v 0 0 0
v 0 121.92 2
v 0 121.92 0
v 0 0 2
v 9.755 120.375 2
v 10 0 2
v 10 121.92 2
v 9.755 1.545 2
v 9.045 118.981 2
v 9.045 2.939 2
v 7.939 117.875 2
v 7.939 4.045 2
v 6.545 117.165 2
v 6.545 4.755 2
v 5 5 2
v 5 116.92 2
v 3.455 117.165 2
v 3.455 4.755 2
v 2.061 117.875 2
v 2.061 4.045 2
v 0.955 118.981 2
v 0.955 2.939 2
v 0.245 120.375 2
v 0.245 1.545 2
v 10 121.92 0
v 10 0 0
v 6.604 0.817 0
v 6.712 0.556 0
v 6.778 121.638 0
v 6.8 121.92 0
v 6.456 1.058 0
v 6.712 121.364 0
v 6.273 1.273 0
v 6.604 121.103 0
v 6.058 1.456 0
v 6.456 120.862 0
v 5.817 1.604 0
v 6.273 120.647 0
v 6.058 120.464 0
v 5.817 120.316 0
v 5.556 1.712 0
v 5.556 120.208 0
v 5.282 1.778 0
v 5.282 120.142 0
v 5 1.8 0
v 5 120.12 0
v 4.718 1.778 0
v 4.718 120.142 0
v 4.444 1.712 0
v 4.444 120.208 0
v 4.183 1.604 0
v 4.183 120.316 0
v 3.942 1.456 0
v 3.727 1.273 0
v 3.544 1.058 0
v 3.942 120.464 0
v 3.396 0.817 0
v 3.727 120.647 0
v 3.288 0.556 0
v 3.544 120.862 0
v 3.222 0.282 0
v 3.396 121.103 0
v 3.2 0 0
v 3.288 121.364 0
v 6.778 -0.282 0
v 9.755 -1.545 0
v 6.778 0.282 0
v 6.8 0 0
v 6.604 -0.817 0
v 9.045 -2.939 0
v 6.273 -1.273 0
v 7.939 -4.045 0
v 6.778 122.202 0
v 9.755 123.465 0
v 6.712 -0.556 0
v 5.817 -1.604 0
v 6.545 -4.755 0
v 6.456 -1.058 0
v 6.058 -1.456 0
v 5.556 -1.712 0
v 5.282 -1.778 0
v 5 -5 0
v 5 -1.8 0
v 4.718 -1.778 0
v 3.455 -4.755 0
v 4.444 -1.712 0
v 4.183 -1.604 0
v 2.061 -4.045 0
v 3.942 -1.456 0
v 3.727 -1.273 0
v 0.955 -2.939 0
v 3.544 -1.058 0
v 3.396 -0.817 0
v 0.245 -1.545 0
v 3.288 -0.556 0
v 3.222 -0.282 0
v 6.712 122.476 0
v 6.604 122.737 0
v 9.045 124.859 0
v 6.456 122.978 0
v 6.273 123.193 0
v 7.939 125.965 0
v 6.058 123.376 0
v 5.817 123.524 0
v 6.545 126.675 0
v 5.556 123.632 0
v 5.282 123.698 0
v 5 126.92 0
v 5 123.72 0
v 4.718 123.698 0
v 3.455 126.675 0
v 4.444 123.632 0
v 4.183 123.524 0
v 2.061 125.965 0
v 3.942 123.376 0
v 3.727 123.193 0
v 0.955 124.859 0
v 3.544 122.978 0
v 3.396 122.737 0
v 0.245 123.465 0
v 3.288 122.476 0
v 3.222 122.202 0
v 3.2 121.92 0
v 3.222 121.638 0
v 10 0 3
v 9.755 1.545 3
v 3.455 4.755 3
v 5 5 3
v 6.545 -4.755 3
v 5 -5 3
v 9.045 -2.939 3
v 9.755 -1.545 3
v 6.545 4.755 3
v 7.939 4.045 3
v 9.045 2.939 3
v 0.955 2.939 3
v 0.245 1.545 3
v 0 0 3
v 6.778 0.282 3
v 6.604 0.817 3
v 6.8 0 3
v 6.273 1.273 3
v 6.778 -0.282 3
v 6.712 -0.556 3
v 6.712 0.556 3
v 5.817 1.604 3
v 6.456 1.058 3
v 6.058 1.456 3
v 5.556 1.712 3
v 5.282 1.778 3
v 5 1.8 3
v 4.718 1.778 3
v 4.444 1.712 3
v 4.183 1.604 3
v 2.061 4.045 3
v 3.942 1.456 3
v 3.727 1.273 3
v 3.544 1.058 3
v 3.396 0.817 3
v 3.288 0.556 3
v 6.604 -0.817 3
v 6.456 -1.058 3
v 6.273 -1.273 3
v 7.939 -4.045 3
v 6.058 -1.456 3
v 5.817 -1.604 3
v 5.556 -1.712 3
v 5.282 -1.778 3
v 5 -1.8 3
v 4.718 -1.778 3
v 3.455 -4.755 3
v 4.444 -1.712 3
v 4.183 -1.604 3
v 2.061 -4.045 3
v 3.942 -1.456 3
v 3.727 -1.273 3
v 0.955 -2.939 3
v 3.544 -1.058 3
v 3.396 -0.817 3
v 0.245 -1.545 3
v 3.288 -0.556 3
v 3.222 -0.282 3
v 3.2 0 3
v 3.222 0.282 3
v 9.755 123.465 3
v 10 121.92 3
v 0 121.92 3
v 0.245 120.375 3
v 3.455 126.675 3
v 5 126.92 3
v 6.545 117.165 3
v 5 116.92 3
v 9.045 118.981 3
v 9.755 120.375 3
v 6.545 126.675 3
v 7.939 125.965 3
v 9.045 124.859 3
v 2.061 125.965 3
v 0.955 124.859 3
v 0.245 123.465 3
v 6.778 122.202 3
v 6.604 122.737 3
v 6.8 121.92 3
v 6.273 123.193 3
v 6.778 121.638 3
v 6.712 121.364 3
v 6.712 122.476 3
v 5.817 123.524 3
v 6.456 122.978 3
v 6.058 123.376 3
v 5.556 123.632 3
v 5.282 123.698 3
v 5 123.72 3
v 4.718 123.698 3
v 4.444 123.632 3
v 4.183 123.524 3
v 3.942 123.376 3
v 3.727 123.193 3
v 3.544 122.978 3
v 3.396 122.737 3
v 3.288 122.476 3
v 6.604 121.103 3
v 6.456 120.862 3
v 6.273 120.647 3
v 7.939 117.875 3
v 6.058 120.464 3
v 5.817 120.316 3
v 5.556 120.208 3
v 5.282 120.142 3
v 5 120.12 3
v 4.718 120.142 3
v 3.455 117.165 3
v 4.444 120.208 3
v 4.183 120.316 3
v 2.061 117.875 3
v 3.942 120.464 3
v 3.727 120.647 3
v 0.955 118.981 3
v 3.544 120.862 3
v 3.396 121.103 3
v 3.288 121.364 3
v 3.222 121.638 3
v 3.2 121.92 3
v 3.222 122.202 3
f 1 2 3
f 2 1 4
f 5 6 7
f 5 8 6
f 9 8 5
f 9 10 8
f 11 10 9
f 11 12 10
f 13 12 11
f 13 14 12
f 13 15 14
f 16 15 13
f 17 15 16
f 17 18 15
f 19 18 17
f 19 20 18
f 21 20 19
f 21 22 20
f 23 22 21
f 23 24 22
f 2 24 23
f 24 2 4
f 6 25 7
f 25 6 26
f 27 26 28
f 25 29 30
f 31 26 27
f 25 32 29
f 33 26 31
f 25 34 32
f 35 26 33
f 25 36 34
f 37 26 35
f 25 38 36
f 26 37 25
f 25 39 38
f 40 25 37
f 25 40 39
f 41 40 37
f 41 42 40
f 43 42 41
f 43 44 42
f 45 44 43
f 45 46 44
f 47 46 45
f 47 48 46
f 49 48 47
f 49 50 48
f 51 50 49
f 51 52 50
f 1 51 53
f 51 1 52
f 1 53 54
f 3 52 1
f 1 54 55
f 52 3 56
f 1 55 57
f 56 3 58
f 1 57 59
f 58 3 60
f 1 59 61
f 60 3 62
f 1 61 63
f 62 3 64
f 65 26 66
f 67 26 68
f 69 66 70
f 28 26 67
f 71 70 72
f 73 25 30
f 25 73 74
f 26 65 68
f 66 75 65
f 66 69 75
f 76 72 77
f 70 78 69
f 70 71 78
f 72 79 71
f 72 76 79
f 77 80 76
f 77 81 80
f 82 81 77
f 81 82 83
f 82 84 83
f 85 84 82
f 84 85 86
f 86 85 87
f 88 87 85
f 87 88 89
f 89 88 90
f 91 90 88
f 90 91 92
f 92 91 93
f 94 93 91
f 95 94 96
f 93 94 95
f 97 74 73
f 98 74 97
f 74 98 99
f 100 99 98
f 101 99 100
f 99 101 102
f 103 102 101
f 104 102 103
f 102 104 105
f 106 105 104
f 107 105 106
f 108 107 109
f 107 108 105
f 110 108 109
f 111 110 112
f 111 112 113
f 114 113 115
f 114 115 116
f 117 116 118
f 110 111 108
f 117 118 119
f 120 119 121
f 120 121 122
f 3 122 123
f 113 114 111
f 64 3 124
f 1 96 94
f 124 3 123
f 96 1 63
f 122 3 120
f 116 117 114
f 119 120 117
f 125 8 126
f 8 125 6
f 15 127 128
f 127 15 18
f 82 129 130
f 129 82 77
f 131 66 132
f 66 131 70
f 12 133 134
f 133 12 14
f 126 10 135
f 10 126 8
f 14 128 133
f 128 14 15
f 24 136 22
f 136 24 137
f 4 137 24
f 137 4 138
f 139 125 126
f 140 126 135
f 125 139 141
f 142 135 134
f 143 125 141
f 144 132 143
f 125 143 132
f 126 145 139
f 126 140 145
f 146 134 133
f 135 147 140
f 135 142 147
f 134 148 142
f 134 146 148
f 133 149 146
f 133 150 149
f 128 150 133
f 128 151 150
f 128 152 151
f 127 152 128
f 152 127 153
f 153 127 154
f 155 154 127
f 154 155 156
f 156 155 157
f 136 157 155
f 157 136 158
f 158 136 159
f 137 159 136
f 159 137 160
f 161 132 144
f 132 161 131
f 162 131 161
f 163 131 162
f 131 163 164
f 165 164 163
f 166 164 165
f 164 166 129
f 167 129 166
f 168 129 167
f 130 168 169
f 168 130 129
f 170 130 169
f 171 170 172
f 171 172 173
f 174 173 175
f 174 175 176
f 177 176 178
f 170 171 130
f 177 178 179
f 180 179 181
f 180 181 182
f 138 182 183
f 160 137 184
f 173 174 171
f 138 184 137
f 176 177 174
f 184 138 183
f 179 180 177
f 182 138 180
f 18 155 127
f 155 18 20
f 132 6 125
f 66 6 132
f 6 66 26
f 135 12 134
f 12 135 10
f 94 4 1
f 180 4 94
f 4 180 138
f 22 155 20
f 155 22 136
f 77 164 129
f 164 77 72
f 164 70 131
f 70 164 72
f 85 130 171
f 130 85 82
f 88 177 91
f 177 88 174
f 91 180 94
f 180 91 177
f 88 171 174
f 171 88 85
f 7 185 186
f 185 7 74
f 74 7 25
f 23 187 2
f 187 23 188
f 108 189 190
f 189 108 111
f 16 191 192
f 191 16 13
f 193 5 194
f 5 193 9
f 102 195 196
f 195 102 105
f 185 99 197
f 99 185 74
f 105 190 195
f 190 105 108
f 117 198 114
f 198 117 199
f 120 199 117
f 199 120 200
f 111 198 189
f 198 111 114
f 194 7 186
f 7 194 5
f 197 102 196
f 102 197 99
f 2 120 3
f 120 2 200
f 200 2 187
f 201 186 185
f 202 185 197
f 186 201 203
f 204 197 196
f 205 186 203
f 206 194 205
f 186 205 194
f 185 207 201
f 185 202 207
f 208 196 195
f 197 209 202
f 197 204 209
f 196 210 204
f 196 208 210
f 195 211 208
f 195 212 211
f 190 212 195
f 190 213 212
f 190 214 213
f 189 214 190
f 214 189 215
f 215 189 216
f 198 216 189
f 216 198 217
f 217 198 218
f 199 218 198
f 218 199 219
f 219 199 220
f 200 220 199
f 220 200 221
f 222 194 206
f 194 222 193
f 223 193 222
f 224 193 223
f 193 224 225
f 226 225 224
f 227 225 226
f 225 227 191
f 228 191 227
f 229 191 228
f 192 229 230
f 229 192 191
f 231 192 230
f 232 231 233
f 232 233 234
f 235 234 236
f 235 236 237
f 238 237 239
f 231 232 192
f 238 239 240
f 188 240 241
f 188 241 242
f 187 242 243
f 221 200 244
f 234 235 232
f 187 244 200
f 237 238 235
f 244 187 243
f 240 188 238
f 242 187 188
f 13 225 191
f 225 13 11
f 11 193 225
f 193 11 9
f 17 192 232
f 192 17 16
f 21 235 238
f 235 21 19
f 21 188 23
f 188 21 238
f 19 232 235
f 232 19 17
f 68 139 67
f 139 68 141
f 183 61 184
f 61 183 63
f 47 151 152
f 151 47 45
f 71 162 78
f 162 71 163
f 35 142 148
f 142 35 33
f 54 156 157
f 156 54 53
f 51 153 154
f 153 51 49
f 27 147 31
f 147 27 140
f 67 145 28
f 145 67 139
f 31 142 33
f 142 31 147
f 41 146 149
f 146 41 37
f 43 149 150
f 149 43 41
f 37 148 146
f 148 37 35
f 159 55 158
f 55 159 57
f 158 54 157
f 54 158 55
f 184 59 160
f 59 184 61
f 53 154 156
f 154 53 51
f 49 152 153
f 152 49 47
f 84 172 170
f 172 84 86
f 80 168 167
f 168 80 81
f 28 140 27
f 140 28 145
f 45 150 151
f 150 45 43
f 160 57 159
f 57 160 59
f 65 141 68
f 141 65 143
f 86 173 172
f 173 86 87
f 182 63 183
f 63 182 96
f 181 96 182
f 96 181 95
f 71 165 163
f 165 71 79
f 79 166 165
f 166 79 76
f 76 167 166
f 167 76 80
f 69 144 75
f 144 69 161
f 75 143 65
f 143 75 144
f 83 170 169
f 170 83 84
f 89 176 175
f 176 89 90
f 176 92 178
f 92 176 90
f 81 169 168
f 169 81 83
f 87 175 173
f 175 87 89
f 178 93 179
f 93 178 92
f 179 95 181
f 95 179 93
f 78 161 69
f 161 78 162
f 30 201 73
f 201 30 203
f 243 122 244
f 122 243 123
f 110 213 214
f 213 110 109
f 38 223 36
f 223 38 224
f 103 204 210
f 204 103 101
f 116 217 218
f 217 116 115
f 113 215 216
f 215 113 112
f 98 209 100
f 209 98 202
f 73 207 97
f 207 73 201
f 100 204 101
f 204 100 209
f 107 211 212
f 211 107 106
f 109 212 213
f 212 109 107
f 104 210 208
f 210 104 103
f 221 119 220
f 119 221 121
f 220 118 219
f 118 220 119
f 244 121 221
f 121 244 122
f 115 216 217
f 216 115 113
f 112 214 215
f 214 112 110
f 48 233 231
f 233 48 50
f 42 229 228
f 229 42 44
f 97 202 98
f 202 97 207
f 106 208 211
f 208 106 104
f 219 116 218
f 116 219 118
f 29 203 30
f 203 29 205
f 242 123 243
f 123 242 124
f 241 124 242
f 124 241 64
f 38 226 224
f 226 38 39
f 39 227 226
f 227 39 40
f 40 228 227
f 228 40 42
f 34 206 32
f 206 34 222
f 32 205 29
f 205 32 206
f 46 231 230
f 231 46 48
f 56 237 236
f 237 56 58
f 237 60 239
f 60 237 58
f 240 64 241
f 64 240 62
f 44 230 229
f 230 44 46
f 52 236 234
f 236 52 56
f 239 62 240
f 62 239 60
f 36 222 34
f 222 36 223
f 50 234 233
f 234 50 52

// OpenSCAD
// file: ../src/AIRDOS_batter.scad
use <flexbatter.scad>
include <../configuration.scad>


module AIRDOS_prezentace()
{
  
AIRDOS_batter();

translate([10.16-10/2,-17-5.3,vyska_sloupku]) 
AIRDOS_batter_pasek();

translate([5*10.16-10/2,-17-5.3,vyska_sloupku]) 
AIRDOS_batter_pasek();  


translate([0,0,baterka_prumer/2+1.5])   
  
BATERKA();
 
translate([10.16,-17-5.3,vyska_sloupku+3])     
matka();    
 
translate([10.16,-17-5.3+10.16*pocet_poli_mezi_srouby,vyska_sloupku+3])     
matka();    
    
translate([5*10.16,-17-5.3,vyska_sloupku+3])     
matka();    
 
translate([5*10.16,-17-5.3+10.16*pocet_poli_mezi_srouby,vyska_sloupku+3])     
matka();      
    
}  

module AIRDOS_batter_pasek()
{
  
   difference () 
    {
   union()       {   
    cube([10,pocet_poli_mezi_srouby*10.16,2],center=false); 
        translate([10/2,0,0]) 
        cylinder (h = 3, r= 10/2, $fn=20);
        
     translate([10/2,pocet_poli_mezi_srouby*10.16,0]) 
        cylinder (h = 3, r= 10/2, $fn=20);
    }
    
     translate([10/2,0,-0.01]) 
            cylinder (h = vyska_sloupku, r= (prumer_sroubu+0.2)/2, $fn=40);
    
     translate([10/2,pocet_poli_mezi_srouby*10.16,-0.01]) 
            cylinder (h = vyska_sloupku, r= (prumer_sroubu+0.2)/2, $fn=40);
    
    
    }
    
    
       
}

module AIRDOS_batter()
{
        flexbatter();

        translate([10.16,-17-5.3,0])
            SLOUPEK_bocnice(4.5);
        translate([5*10.16,-17-5.3,0])
            SLOUPEK_bocnice(4.5);
            
        translate([10.16,-17-5.3+pocet_poli_mezi_srouby*10.16,0])
            rotate([0, 0, 180])
            SLOUPEK_bocnice(7.5);
        translate([5*10.16,-17-5.3+pocet_poli_mezi_srouby*10.16,0])
            rotate([0, 0, 180])
            SLOUPEK_bocnice(7.5);
}

module SLOUPEK()
{    
translate([0,0,0]) 
    difference () 
    {
        
        cylinder (h = vyska_sloupku, r= sirka_matky/2+sila_materialu/2, $fn=20);
        
        translate([0,0,vyska_sloupku-vyska_matky-0.3]) 
            cylinder (h = vyska_matky+0.31, r= (sirka_matky+0.2)/2, $fn=6);
        
        translate([0,0,-0.01]) 
            cylinder (h = vyska_sloupku, r= (prumer_sroubu+0.2)/2, $fn=40);
               
       
    
    }       
}

module SLOUPEK_bocnice(delka_bocnice)
{    

    
    difference () 
    {
        
     union()       {   
       
         //krychle
         translate([-(sirka_matky/2+sila_materialu/2),0,0]) 
         cube([2*(sirka_matky/2+sila_materialu/2),delka_bocnice,vyska_sloupku],center=false); 
     
          cylinder (h = vyska_sloupku, r= sirka_matky/2+sila_materialu/2, $fn=20);
         
         }    
        
         
       
        
        translate([0,0,vyska_sloupku-vyska_matky-0.3]) 
            cylinder (h = vyska_matky+0.31, r= (sirka_matky+0.2)/2, $fn=6);
        
        translate([0,0,-0.01]) 
            cylinder (h = vyska_sloupku, r= (prumer_sroubu+0.2)/2, $fn=40);
               
       
    
    }       
}


baterka_prumer=33;
baterka_delka=60;
//https://www.battery.cz/saft-ls-33600-lithiovy-clanek-3-6v-17000mah.html
module BATERKA()
{    
translate([0,0,0]) 
   
   rotate([90, 0, 90])  
        cylinder (h = baterka_delka, r= baterka_prumer/2, $fn=20);
      
}


module matka()
{    
translate([0,0,0]) 
    difference () 
    {
        
        cylinder (h = vyska_matky+1, r= sirka_matky/2+5, $fn=8);
        
        translate([0,0,1]) 
            cylinder (h = vyska_matky+0.31, r= (sirka_matky+0.2)/2, $fn=6);
        
        translate([0,0,-0.01]) 
            cylinder (h = vyska_sloupku, r= (prumer_sroubu+0.2)/2, $fn=40);
               
       
    
    }       
}
// file: ../configuration.scad
//Parametry sroubu
prumer_sroubu=3.4;
prumer_hlavy_sroubu=6;
vyska_hlavy_sroubu=4;
vyska_matky=3;
sirka_matky=6.7;

baterka_prumer=33;
baterka_delka=60;


vyska_sloupku=baterka_prumer+1;
sila_materialu=1.3;

pocet_poli_mezi_srouby=12;
// main file
$fn=100; // model faces resolution.
include <../configuration.scad>


use <../src/flexbatter.scad>
use <../src/AIRDOS_batter.scad>



AIRDOS_batter_pasek();
